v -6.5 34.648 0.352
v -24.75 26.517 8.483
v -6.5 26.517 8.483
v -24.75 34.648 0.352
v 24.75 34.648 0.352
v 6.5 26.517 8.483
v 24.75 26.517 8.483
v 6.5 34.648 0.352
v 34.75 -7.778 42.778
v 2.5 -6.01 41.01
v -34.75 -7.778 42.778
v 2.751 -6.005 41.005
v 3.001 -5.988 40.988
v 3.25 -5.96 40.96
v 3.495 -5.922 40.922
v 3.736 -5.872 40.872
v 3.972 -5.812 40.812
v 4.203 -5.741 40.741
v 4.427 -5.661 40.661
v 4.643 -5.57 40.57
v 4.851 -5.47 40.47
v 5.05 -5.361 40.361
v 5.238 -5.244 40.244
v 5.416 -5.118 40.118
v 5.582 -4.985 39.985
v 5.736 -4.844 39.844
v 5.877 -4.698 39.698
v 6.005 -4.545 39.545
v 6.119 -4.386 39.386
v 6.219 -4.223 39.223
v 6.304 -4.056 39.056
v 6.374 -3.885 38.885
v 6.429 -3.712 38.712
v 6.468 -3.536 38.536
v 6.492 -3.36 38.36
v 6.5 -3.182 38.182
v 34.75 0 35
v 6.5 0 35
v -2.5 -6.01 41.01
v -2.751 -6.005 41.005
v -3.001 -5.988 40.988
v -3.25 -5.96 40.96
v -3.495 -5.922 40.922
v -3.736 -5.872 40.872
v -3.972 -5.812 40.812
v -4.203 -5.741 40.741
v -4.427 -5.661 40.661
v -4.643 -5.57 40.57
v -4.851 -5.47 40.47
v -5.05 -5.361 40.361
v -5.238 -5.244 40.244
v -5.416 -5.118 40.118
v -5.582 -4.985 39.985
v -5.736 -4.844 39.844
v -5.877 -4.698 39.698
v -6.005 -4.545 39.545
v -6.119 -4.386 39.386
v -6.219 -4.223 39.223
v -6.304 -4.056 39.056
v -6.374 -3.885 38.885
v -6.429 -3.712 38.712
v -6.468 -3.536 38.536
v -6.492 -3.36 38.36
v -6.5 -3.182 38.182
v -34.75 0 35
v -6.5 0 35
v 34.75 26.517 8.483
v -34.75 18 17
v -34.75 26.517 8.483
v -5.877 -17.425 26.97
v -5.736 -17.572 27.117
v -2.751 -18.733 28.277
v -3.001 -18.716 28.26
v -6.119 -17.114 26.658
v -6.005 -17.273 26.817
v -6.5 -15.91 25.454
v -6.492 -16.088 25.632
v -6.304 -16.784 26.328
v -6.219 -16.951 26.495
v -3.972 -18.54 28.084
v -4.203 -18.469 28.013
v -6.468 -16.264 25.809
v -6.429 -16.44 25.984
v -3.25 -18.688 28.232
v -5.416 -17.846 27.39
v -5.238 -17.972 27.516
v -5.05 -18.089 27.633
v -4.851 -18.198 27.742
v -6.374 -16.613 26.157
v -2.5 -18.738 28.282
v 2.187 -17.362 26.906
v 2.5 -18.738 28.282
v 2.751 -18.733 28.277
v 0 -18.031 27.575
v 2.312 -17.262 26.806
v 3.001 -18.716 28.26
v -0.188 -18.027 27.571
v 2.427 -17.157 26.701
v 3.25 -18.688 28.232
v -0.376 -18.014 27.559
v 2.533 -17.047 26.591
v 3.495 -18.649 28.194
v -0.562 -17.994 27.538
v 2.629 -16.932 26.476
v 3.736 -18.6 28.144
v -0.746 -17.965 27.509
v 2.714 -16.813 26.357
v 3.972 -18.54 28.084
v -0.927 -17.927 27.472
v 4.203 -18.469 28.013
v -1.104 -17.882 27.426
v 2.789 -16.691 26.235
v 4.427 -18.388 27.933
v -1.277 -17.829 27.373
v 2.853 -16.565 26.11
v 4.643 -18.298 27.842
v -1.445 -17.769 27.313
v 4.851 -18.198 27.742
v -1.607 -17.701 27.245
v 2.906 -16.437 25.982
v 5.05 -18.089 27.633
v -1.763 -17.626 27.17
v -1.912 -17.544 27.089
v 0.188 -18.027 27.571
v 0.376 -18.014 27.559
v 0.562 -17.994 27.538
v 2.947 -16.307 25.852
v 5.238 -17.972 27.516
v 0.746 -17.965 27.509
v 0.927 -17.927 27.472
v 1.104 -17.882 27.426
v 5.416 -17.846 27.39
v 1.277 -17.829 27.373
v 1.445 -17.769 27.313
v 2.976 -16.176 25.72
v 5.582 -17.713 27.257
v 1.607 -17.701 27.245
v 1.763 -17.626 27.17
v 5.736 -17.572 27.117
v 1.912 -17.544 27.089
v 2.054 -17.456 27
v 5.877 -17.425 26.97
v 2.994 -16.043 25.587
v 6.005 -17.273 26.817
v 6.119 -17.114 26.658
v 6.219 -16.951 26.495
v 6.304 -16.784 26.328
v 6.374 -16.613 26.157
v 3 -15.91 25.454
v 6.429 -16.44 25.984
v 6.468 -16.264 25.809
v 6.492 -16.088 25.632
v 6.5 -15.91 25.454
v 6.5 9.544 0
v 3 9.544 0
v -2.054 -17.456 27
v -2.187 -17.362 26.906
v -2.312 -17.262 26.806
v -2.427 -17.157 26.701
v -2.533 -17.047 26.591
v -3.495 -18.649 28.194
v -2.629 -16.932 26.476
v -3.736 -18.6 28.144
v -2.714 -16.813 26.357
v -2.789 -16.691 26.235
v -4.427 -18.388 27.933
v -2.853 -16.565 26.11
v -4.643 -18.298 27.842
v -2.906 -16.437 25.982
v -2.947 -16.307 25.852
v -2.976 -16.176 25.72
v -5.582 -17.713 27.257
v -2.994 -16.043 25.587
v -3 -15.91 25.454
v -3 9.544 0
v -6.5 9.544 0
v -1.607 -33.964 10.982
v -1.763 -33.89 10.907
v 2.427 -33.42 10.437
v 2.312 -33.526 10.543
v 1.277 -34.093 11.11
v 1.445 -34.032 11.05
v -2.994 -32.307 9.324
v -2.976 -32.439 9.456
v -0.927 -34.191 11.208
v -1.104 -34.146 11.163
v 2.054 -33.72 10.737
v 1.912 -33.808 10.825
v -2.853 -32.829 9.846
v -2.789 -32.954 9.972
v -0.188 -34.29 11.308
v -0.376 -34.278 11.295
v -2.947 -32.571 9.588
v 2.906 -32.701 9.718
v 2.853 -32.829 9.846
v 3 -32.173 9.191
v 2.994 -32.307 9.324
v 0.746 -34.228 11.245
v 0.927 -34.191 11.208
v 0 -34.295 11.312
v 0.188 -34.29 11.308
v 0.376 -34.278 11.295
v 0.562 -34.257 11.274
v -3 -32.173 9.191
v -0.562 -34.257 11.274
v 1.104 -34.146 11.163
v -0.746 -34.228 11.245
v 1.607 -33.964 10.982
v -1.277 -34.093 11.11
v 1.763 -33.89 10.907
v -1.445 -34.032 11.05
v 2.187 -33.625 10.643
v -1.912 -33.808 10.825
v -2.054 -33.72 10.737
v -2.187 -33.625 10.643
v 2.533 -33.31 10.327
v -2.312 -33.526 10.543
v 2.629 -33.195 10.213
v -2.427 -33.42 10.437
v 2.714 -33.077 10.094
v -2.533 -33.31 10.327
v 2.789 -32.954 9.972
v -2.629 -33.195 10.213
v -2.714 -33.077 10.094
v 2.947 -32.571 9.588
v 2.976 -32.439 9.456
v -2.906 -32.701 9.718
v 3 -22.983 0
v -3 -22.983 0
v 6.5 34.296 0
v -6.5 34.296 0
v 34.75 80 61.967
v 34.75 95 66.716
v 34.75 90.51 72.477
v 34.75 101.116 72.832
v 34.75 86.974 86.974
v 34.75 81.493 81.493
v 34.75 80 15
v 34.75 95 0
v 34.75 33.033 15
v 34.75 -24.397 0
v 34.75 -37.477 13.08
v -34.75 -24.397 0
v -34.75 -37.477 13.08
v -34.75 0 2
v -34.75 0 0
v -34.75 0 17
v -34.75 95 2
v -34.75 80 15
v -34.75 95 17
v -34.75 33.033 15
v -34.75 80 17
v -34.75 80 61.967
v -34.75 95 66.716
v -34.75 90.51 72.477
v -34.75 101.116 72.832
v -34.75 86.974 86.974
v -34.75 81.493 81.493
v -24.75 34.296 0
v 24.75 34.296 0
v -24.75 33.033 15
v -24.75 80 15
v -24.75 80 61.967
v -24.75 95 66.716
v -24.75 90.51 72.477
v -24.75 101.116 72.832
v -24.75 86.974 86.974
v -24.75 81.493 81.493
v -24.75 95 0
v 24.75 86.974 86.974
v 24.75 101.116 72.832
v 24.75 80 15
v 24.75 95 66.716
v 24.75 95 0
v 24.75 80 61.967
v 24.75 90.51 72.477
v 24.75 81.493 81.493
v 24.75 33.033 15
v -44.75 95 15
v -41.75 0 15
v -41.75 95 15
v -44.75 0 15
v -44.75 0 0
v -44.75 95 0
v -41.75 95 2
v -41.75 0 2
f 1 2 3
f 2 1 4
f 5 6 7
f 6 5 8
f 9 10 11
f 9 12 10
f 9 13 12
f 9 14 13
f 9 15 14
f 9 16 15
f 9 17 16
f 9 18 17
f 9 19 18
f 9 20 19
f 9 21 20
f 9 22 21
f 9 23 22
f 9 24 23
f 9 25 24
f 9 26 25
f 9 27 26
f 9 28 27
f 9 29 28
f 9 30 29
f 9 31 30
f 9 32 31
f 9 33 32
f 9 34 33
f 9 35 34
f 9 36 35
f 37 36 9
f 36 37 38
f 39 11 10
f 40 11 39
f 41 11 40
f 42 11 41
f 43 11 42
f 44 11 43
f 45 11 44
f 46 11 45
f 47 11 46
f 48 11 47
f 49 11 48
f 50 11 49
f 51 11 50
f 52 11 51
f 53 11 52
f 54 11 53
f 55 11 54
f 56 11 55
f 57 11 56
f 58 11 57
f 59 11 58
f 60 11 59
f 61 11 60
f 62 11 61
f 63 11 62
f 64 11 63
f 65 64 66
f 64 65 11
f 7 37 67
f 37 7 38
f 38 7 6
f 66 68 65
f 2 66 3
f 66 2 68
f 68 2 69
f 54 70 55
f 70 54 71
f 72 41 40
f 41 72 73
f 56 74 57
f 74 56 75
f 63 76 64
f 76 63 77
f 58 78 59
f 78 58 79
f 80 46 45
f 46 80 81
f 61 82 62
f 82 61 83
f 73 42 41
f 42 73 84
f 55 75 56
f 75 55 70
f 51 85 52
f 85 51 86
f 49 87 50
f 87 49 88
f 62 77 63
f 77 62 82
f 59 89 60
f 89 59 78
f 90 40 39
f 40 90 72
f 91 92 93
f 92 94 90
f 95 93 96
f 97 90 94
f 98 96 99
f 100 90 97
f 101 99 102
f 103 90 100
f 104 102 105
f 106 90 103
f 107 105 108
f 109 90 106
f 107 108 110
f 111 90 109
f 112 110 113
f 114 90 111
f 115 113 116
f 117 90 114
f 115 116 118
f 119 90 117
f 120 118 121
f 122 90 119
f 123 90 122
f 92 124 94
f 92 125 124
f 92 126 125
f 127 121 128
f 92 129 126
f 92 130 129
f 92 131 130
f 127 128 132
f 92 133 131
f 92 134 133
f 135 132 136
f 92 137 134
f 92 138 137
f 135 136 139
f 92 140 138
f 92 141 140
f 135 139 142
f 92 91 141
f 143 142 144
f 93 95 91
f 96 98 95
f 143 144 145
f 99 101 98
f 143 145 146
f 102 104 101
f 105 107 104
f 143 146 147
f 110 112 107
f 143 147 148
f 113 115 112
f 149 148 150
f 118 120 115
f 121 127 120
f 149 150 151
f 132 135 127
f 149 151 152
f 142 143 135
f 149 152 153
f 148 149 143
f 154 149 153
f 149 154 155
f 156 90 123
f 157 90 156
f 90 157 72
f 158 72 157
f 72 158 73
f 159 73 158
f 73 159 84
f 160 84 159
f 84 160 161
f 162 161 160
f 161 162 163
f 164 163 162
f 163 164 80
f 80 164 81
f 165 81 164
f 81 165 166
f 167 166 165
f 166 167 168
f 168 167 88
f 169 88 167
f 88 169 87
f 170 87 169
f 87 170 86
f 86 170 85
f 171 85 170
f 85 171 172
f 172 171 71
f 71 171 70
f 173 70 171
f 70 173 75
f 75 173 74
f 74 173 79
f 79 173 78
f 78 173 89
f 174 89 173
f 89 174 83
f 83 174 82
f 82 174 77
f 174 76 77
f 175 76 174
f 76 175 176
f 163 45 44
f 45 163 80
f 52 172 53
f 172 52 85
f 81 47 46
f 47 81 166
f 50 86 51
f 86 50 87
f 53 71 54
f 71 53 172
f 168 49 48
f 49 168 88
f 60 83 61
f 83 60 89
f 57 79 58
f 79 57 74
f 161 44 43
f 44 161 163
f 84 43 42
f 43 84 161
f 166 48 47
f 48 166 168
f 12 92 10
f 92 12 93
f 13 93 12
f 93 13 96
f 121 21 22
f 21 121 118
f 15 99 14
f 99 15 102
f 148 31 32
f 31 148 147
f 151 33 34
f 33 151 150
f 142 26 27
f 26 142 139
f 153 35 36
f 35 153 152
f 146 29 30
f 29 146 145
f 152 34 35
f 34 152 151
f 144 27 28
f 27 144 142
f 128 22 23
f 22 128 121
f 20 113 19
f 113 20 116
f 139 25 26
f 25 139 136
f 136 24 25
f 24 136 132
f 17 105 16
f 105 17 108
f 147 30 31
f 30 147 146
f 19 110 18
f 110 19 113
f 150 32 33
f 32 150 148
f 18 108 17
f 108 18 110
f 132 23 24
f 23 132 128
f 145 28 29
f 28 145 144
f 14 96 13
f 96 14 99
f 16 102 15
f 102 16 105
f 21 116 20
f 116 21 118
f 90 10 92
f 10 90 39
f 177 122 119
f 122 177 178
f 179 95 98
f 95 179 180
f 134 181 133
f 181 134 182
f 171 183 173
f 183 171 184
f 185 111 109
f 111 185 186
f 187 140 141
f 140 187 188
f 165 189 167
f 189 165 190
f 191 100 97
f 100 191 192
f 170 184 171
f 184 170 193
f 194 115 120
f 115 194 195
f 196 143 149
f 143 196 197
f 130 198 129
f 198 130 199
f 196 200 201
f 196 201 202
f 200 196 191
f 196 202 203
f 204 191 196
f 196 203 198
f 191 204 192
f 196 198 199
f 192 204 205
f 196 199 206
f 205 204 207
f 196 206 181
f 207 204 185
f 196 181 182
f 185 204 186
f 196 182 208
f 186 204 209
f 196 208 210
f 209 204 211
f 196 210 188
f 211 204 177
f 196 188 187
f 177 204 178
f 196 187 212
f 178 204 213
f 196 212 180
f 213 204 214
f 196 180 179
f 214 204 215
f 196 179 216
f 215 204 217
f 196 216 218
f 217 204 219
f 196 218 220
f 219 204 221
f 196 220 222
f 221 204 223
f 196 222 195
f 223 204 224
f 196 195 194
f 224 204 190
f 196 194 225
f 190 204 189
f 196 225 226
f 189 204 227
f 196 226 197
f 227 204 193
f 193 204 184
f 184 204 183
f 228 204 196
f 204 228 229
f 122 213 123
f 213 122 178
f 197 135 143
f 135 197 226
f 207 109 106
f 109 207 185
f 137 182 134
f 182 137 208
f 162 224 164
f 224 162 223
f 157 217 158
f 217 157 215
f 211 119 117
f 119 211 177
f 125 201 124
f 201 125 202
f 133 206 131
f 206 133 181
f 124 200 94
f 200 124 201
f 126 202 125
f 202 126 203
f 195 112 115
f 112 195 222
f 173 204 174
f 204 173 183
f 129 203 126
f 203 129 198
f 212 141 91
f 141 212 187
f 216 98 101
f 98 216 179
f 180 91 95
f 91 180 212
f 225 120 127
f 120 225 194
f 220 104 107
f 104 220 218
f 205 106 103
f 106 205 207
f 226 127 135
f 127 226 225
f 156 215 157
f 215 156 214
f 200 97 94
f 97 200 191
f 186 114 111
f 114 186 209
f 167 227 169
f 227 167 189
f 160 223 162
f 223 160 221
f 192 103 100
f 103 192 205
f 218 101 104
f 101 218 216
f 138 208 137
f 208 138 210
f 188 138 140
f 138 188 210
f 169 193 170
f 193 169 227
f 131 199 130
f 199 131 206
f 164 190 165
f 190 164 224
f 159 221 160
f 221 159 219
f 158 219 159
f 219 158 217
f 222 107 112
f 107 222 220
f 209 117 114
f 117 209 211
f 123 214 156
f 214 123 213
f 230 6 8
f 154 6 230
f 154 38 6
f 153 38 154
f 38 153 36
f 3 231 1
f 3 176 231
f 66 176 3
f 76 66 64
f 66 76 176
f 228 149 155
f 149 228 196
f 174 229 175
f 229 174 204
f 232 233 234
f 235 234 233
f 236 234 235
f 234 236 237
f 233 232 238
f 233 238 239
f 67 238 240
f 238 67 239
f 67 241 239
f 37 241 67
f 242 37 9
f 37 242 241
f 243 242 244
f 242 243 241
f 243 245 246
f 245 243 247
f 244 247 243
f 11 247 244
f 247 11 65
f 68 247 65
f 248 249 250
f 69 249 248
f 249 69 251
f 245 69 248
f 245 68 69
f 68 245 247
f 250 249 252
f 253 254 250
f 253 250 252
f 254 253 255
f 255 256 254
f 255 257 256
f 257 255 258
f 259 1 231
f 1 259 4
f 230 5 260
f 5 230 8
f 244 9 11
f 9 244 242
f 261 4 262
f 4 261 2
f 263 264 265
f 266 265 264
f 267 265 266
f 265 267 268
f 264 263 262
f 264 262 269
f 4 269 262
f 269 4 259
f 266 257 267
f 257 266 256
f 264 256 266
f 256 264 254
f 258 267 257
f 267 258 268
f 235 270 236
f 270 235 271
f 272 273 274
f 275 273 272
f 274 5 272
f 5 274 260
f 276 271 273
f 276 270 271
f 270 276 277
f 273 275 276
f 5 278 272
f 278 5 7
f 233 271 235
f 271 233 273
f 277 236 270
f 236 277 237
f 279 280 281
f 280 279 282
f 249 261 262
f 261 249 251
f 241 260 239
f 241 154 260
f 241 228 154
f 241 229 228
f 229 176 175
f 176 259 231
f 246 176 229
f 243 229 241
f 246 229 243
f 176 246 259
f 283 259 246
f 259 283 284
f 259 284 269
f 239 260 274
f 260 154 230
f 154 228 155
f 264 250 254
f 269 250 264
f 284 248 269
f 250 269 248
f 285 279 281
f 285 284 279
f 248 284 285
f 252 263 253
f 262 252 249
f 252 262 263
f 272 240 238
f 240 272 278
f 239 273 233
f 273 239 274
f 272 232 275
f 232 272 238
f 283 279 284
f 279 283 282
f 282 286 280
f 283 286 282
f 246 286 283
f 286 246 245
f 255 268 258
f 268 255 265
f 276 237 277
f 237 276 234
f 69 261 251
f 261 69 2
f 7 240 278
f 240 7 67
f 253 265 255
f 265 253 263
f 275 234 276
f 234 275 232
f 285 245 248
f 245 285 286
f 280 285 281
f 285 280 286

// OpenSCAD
//
// ktRACK37
//
 
gap1 = 0.001;
gap2 = 0.002;
th = 2;

W = 69.5;
D = 37.5;
H = 90.5;

 
 
difference()
{
    union()
    {
        translate([0, 0, 35]) rotate([-45, 0, 0]) base();
       
        rotate([-45, 0, 0]) translate([-W/2, 0, 103]) cube([10, 20, 20]);
        rotate([-45, 0, 0]) translate([W/2-10, 0, 103]) cube([10, 20, 20]);
        
        translate([-W/2, 20, 0]) cube([10, 75, 15]);
        translate([-W/2, 80, 0]) cube([10, 15, 70]);
        translate([W/2-10, 20, 0]) cube([10, 75, 15]);
        translate([W/2-10, 80, 0]) cube([10, 15, 70]);

        translate([-W/2-10, 0, 0]) cube([10, 95, 15]);

    }
   
    #translate([0, 0, 35]) rotate([-45, 0, 0]) unit();

    translate([-W/2-7, 0, th]) cube([7, 95, 15]);
   
    translate([-500/2, -500/2, -100]) cube([500, 500, 100]);

   
}
 
 
 
module base()
{
difference()
{
    union()
    {
        translate([-W/2, -0.5-14-th+7/2+th, -42]) cube([W, 60, 42]);
    }
   
    unit();
   
    translate([-6/2, -7/2-0.5, -16-25]) cube([6, 60, 12]);
}
}
 
module unit()
{
    translate([-W/2, 0, 0]) cube([W, D, H]);
   
    translate([-2.5, -(7+1)/2-0.5, -16-2]) rotate([0, 0, 0]) cylinder(r1=(7+1)/2, r2=(7+1)/2,  h=16+2, $fn=100);
    translate([2.5, -(7+1)/2-0.5, -16-2]) rotate([0, 0, 0]) cylinder(r1=(7+1)/2, r2=(7+1)/2,  h=16+2, $fn=100);
    translate([-5/2, -(7+1)-0.5, -16-2]) cube([5, (7+1), 16+2]);
    translate([0, -(7+1)/2-0.5, -16-25]) rotate([0, 0, 0]) cylinder(r1=6/2, r2=6/2,  h=25, $fn=100);
    
    translate([-(5+(7+1))/2, -(7+1)-0.5+(7+1)/2, -16-2]) cube([5+(7+1), (7+1)+50, 16+2]);
    translate([-6/2, -(7+1)-0.5+(7+1)/2, -16-25]) cube([6, (7+1)+50, 25]);
}
